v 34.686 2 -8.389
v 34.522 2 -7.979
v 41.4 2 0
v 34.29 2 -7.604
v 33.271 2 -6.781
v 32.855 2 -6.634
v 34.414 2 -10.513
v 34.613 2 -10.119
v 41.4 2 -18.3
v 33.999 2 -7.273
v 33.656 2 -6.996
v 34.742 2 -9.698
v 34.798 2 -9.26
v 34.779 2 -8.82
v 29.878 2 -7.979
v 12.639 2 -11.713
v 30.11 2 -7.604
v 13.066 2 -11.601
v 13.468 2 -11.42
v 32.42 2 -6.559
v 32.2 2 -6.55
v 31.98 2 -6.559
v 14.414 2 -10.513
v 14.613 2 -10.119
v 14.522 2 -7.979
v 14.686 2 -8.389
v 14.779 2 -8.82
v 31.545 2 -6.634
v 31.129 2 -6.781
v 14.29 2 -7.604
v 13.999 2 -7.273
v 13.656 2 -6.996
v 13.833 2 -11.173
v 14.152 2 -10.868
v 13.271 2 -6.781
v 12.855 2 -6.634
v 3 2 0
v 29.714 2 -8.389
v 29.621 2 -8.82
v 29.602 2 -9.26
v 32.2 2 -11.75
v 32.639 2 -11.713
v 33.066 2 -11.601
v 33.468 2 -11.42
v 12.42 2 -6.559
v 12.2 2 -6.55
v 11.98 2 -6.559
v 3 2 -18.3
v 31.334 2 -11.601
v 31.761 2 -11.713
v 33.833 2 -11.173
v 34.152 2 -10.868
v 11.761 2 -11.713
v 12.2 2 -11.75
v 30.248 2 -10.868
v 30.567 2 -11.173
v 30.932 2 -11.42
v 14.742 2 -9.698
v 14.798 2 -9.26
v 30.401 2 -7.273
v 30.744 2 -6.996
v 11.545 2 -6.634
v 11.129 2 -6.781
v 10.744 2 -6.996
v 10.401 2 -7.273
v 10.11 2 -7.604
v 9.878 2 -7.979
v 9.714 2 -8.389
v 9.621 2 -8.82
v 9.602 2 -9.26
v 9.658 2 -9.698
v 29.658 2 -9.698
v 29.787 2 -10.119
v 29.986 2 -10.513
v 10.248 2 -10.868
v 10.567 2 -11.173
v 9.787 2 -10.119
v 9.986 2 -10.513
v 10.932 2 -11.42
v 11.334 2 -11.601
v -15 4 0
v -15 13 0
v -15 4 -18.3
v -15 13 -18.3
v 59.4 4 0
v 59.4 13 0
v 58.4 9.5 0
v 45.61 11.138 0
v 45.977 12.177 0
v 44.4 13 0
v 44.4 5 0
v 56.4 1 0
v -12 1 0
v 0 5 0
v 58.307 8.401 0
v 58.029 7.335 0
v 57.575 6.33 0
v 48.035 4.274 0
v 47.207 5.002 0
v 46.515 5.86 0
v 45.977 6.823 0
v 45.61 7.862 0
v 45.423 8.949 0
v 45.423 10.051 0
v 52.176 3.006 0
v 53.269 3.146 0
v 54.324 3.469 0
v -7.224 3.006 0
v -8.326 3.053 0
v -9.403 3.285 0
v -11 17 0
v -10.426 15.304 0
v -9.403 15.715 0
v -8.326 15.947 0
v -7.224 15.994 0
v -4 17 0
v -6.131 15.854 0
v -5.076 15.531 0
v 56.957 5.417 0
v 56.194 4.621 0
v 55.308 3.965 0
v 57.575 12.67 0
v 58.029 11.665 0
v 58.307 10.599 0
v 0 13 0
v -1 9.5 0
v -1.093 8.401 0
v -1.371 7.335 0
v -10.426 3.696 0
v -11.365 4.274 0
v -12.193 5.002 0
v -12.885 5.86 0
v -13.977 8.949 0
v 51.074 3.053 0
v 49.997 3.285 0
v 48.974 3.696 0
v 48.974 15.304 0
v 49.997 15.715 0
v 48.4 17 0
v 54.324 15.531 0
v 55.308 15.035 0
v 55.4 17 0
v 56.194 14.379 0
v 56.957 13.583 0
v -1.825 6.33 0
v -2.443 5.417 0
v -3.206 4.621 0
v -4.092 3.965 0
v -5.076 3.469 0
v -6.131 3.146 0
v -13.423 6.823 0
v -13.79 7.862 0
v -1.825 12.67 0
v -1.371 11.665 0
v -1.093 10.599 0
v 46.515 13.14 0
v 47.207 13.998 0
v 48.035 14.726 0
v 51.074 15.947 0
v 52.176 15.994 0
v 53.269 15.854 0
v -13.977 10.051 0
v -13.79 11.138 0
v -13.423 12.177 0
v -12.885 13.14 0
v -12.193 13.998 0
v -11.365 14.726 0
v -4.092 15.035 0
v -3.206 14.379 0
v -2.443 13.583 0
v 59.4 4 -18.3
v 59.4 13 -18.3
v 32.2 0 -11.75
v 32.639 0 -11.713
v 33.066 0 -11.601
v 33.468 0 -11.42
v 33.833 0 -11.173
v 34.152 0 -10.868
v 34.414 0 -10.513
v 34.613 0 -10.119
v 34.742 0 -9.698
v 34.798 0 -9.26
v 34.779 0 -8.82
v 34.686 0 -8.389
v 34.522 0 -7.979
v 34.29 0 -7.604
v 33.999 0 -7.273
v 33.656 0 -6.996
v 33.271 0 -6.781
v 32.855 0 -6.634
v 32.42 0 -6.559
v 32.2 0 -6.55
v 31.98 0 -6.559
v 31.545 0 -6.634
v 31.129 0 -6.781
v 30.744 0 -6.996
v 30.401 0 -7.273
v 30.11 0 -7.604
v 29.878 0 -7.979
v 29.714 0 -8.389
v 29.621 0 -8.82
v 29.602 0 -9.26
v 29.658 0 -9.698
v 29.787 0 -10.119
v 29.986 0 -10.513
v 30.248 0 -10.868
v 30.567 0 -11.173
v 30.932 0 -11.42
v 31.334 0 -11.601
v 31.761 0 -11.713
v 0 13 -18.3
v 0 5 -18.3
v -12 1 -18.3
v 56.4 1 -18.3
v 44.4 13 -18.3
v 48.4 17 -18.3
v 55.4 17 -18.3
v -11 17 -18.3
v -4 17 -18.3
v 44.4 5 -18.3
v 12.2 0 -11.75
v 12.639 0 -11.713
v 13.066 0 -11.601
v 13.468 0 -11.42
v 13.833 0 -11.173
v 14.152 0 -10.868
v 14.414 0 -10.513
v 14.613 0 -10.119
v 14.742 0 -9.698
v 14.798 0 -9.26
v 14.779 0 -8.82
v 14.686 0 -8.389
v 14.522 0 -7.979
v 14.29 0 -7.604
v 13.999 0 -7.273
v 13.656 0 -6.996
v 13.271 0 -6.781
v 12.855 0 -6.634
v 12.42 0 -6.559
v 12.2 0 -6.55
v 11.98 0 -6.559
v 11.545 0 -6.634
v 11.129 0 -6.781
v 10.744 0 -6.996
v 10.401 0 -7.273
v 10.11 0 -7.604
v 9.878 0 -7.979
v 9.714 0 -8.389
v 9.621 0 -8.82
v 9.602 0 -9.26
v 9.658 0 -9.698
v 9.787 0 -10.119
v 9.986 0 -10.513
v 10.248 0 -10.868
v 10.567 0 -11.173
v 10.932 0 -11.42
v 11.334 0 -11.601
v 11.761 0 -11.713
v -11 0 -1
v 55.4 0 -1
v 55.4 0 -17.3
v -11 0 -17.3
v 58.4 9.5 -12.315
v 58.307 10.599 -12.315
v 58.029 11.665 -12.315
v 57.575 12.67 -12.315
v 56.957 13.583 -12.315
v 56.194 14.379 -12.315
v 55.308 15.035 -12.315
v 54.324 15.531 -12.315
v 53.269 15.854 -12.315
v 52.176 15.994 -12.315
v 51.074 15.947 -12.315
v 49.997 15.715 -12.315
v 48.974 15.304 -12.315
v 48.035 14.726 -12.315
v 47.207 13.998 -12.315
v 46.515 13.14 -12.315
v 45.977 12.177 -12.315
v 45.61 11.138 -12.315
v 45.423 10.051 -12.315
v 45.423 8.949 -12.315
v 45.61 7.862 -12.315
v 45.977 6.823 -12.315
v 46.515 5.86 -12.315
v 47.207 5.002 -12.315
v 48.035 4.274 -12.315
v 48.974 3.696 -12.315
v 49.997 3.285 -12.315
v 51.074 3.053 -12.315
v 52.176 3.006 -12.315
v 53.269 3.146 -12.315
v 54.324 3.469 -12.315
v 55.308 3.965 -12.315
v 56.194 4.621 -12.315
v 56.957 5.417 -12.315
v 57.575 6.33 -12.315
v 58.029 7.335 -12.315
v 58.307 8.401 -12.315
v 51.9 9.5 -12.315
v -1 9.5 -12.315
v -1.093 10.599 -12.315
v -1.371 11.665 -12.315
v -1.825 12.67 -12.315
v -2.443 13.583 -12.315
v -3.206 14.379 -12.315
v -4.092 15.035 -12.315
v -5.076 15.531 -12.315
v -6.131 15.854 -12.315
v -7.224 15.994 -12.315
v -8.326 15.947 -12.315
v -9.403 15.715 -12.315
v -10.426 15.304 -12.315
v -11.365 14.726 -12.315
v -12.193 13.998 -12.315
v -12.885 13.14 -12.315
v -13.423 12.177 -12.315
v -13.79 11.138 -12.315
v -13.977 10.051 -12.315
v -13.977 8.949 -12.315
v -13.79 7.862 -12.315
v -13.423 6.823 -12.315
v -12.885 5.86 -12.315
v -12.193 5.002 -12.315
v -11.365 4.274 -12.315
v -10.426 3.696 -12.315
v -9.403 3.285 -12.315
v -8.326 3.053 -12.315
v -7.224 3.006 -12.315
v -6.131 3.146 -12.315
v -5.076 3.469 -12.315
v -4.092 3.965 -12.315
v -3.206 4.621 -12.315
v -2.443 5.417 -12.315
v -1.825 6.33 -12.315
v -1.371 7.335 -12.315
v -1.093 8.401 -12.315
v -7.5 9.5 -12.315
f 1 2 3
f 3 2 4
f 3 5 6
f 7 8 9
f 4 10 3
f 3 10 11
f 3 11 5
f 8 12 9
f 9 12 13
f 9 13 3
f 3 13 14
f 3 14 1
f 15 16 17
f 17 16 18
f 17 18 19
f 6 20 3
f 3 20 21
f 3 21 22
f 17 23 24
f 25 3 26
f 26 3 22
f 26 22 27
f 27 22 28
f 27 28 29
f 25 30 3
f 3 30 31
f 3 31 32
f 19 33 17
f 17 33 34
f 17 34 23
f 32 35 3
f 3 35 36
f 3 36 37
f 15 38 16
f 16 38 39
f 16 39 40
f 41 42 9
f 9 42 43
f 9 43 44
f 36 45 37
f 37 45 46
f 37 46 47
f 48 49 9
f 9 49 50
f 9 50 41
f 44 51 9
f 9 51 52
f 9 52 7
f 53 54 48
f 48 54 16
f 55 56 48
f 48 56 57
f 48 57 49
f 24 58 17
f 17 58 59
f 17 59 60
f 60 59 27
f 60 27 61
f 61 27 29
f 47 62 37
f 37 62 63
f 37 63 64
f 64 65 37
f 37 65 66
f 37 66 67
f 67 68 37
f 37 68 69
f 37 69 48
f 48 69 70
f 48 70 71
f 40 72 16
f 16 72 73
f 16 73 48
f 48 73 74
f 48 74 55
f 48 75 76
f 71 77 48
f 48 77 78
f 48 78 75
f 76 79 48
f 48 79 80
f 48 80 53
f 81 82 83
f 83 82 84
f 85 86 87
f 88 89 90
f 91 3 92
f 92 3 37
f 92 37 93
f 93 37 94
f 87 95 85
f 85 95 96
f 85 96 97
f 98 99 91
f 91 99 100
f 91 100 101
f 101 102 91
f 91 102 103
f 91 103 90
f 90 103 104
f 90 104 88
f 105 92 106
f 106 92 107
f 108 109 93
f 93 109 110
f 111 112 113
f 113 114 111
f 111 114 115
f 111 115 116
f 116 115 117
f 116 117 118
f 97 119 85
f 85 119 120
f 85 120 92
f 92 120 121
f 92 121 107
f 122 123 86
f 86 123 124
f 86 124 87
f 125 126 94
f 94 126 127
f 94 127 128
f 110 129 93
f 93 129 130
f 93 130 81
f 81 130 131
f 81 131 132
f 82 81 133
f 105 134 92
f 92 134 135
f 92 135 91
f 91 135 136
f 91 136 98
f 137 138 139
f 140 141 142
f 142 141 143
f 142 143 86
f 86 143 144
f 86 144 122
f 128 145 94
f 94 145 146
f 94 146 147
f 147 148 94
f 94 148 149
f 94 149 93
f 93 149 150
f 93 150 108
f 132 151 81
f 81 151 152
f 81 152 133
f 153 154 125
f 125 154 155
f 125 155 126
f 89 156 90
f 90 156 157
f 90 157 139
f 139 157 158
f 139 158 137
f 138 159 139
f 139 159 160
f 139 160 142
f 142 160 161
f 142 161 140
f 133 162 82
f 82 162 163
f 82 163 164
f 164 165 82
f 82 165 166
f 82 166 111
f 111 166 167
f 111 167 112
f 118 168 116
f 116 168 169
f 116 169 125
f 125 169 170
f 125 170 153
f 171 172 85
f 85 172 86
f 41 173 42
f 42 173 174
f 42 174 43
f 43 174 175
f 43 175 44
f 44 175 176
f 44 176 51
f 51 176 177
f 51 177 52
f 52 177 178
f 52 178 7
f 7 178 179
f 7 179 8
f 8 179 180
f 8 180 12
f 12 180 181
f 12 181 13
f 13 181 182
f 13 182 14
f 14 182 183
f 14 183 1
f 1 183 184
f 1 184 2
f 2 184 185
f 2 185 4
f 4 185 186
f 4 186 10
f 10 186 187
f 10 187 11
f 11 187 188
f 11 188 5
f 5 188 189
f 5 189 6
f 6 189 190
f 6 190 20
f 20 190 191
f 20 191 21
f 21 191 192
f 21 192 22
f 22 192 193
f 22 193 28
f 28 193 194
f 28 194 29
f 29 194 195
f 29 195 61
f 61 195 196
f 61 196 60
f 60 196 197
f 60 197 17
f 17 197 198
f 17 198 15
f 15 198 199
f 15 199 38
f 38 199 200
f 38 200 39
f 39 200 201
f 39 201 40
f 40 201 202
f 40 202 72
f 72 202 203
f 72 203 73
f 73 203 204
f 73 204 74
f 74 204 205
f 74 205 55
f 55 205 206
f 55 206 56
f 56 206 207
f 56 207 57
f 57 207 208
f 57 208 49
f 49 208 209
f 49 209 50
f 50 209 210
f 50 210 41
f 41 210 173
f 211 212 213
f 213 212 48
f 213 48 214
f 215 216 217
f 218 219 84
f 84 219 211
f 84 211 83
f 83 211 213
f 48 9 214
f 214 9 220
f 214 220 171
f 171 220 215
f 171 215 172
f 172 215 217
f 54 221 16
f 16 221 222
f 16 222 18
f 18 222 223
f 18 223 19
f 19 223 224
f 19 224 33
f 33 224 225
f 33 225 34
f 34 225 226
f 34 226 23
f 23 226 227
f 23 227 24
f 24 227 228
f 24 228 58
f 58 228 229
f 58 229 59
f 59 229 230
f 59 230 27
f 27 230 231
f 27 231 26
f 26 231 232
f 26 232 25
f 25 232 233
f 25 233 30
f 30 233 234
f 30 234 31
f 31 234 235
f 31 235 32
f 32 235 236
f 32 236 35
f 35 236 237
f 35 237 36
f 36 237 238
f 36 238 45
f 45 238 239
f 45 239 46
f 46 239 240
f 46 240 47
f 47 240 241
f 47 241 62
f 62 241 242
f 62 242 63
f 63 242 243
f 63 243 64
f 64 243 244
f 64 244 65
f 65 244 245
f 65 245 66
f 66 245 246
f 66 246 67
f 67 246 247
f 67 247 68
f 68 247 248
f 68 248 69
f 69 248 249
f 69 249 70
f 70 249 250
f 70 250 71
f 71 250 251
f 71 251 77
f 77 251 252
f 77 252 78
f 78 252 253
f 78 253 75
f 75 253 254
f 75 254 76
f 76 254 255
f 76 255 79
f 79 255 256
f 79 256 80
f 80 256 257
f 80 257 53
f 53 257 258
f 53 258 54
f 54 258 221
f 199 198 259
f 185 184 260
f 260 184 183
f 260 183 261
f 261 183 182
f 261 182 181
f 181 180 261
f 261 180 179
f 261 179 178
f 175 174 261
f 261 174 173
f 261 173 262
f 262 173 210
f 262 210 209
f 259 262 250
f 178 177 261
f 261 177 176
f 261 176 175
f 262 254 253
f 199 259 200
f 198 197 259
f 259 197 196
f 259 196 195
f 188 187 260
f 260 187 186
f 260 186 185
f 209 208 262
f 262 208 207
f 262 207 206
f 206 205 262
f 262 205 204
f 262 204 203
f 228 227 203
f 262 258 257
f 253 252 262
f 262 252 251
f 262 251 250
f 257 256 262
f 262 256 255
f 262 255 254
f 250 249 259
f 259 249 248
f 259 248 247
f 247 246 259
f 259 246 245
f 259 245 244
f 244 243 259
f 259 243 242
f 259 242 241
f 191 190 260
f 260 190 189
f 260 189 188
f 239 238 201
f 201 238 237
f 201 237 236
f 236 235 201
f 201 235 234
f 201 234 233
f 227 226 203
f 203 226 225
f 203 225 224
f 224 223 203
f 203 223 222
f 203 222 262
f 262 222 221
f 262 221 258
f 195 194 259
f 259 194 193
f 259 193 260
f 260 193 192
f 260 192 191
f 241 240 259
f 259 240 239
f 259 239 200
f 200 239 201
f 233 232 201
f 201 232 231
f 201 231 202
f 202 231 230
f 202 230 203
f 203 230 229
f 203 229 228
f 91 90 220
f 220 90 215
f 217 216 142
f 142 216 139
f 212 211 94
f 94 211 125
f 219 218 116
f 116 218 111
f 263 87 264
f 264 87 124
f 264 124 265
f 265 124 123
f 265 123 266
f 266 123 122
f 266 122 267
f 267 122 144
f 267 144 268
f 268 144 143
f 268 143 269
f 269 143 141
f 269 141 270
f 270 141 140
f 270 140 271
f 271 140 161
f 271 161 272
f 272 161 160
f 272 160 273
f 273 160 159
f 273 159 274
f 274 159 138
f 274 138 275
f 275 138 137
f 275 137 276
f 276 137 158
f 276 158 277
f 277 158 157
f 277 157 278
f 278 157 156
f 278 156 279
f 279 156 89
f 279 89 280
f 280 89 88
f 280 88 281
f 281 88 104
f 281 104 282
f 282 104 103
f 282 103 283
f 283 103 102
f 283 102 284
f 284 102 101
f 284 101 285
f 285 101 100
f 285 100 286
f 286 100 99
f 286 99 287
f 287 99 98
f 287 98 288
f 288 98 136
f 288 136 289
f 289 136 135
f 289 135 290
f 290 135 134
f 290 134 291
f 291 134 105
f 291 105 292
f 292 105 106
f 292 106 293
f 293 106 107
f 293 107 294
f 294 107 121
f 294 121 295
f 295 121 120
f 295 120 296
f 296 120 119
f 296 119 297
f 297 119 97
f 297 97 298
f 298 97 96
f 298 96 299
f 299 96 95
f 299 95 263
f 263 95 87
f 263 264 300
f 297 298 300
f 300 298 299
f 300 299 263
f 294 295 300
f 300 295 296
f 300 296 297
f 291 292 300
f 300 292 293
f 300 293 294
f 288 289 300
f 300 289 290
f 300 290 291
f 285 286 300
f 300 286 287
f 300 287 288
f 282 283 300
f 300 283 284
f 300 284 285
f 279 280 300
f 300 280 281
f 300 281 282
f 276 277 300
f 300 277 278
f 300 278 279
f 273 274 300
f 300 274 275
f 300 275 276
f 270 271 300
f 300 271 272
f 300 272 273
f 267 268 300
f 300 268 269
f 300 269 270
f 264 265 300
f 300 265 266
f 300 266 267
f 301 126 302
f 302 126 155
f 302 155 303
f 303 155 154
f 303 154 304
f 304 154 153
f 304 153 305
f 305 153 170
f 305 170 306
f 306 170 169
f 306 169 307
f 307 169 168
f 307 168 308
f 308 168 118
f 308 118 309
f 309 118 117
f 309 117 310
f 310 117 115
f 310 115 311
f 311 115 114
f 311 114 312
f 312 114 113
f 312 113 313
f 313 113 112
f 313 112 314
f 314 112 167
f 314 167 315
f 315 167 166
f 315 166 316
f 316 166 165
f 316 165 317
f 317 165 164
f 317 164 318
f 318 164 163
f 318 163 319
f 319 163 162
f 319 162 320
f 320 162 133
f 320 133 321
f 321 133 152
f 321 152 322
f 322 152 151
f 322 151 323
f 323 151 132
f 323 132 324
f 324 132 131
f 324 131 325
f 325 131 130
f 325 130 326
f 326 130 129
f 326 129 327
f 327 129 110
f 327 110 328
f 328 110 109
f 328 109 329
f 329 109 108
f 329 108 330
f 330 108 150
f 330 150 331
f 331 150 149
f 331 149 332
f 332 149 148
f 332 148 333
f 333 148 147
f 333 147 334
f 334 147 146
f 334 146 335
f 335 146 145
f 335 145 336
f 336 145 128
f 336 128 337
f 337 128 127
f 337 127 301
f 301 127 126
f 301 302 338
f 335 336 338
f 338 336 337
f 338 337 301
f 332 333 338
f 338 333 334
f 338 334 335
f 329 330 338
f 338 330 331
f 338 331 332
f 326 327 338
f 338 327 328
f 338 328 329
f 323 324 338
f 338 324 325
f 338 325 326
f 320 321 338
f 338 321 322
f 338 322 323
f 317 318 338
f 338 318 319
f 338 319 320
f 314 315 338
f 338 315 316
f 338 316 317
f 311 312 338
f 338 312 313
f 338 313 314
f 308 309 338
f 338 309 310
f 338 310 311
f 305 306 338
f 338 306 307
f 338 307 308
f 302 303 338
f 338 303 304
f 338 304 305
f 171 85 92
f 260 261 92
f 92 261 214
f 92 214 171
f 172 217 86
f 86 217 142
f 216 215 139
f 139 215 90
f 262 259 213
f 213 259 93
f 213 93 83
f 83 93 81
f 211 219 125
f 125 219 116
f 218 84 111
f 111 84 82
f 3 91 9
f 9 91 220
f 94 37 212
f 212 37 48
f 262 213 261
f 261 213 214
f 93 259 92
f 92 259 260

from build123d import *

# Parameters (mm, degrees)
SKETCH1_W           = 15
SKETCH1_H           = 18.3
SKETCH1_W_2         = 44.4
SKETCH1_R           = 2.6
BOSS_EXTRUDE1_DEPTH = 2
SKETCH1_3_W         = 15
SKETCH1_3_H         = 18.3
BOSS_EXTRUDE2_DEPTH = 17
SKETCH2_R           = 6.5
CUT_EXTRUDE2_DEPTH  = 12.315
FILLET3_SIZE        = 4
FILLET4_SIZE        = 3
CHAMFER2_SIZE       = 1


with BuildPart() as part:
    # Sketch1 → Boss-Extrude1 (new body)
    # profile 1 of 3: a face of its own
    with BuildSketch(Plane(origin=(0, 0, 0), x_dir=(1, 0, 0), z_dir=(0, 1, 0))):
        with Locations((-7.5, 9.15)):
            Rectangle(SKETCH1_W, SKETCH1_H)
    # profile 2 of 3: a face of its own
    with BuildSketch(Plane(origin=(0, 0, 0), x_dir=(1, 0, 0), z_dir=(0, 1, 0))):
        with Locations((22.2, 9.15)):
            Rectangle(SKETCH1_W_2, SKETCH1_H)
        with Locations(Location((32.2, 9.15, 0), (0, 0, 270))):
            Circle(SKETCH1_R, mode=Mode.SUBTRACT)
        with Locations(Location((12.2, 9.15, 0), (0, 0, 270))):
            Circle(SKETCH1_R, mode=Mode.SUBTRACT)
    # profile 3 of 3: a face of its own
    with BuildSketch(Plane(origin=(0, 0, 0), x_dir=(1, 0, 0), z_dir=(0, 1, 0))):
        with Locations((51.9, 9.15)):
            Rectangle(SKETCH1_W, SKETCH1_H)
    extrude(amount=BOSS_EXTRUDE1_DEPTH)

    # Sketch1<3> → Boss-Extrude2 (add)
    with BuildSketch(Plane(origin=(0, 0, 0), x_dir=(1, 0, 0), z_dir=(0, 1, 0))):
        with Locations((51.9, 9.15)):
            Rectangle(SKETCH1_3_W, SKETCH1_3_H)
        with Locations((-7.5, 9.15)):
            Rectangle(SKETCH1_3_W, SKETCH1_3_H)
    extrude(amount=BOSS_EXTRUDE2_DEPTH)

    # Sketch2 → Cut-Extrude2 (cut)
    with BuildSketch(Plane.XY):
        with Locations((-7.5, 9.5)):
            Circle(SKETCH2_R)
        with Locations((51.9, 9.5)):
            Circle(SKETCH2_R)
    extrude(amount=-CUT_EXTRUDE2_DEPTH, mode=Mode.SUBTRACT)

    # Fillet3
    fillet3_edges = [part.edges().sort_by_distance(p)[0] for p in [
        (59.4, 0, -9.15),
        (-15, 0, -9.15),
        (44.4, 17, -9.15),
        (59.4, 17, -9.15),
        (-15, 17, -9.15),
        (0, 17, -9.15),
    ]]
    chamfer(fillet3_edges, length=FILLET3_SIZE)

    # Fillet4
    fillet4_edges = [part.edges().sort_by_distance(p)[0] for p in [
        (44.4, 2, -9.15),
        (0, 2, -9.15),
    ]]
    chamfer(fillet4_edges, length=FILLET4_SIZE)

    # Chamfer2
    chamfer2_edges = [part.edges().sort_by_distance(p)[0] for p in [
        (22.2, 0, -18.3),
        (22.2, 0, 0),
    ]]
    chamfer(chamfer2_edges, length=CHAMFER2_SIZE)


solid = part.part
